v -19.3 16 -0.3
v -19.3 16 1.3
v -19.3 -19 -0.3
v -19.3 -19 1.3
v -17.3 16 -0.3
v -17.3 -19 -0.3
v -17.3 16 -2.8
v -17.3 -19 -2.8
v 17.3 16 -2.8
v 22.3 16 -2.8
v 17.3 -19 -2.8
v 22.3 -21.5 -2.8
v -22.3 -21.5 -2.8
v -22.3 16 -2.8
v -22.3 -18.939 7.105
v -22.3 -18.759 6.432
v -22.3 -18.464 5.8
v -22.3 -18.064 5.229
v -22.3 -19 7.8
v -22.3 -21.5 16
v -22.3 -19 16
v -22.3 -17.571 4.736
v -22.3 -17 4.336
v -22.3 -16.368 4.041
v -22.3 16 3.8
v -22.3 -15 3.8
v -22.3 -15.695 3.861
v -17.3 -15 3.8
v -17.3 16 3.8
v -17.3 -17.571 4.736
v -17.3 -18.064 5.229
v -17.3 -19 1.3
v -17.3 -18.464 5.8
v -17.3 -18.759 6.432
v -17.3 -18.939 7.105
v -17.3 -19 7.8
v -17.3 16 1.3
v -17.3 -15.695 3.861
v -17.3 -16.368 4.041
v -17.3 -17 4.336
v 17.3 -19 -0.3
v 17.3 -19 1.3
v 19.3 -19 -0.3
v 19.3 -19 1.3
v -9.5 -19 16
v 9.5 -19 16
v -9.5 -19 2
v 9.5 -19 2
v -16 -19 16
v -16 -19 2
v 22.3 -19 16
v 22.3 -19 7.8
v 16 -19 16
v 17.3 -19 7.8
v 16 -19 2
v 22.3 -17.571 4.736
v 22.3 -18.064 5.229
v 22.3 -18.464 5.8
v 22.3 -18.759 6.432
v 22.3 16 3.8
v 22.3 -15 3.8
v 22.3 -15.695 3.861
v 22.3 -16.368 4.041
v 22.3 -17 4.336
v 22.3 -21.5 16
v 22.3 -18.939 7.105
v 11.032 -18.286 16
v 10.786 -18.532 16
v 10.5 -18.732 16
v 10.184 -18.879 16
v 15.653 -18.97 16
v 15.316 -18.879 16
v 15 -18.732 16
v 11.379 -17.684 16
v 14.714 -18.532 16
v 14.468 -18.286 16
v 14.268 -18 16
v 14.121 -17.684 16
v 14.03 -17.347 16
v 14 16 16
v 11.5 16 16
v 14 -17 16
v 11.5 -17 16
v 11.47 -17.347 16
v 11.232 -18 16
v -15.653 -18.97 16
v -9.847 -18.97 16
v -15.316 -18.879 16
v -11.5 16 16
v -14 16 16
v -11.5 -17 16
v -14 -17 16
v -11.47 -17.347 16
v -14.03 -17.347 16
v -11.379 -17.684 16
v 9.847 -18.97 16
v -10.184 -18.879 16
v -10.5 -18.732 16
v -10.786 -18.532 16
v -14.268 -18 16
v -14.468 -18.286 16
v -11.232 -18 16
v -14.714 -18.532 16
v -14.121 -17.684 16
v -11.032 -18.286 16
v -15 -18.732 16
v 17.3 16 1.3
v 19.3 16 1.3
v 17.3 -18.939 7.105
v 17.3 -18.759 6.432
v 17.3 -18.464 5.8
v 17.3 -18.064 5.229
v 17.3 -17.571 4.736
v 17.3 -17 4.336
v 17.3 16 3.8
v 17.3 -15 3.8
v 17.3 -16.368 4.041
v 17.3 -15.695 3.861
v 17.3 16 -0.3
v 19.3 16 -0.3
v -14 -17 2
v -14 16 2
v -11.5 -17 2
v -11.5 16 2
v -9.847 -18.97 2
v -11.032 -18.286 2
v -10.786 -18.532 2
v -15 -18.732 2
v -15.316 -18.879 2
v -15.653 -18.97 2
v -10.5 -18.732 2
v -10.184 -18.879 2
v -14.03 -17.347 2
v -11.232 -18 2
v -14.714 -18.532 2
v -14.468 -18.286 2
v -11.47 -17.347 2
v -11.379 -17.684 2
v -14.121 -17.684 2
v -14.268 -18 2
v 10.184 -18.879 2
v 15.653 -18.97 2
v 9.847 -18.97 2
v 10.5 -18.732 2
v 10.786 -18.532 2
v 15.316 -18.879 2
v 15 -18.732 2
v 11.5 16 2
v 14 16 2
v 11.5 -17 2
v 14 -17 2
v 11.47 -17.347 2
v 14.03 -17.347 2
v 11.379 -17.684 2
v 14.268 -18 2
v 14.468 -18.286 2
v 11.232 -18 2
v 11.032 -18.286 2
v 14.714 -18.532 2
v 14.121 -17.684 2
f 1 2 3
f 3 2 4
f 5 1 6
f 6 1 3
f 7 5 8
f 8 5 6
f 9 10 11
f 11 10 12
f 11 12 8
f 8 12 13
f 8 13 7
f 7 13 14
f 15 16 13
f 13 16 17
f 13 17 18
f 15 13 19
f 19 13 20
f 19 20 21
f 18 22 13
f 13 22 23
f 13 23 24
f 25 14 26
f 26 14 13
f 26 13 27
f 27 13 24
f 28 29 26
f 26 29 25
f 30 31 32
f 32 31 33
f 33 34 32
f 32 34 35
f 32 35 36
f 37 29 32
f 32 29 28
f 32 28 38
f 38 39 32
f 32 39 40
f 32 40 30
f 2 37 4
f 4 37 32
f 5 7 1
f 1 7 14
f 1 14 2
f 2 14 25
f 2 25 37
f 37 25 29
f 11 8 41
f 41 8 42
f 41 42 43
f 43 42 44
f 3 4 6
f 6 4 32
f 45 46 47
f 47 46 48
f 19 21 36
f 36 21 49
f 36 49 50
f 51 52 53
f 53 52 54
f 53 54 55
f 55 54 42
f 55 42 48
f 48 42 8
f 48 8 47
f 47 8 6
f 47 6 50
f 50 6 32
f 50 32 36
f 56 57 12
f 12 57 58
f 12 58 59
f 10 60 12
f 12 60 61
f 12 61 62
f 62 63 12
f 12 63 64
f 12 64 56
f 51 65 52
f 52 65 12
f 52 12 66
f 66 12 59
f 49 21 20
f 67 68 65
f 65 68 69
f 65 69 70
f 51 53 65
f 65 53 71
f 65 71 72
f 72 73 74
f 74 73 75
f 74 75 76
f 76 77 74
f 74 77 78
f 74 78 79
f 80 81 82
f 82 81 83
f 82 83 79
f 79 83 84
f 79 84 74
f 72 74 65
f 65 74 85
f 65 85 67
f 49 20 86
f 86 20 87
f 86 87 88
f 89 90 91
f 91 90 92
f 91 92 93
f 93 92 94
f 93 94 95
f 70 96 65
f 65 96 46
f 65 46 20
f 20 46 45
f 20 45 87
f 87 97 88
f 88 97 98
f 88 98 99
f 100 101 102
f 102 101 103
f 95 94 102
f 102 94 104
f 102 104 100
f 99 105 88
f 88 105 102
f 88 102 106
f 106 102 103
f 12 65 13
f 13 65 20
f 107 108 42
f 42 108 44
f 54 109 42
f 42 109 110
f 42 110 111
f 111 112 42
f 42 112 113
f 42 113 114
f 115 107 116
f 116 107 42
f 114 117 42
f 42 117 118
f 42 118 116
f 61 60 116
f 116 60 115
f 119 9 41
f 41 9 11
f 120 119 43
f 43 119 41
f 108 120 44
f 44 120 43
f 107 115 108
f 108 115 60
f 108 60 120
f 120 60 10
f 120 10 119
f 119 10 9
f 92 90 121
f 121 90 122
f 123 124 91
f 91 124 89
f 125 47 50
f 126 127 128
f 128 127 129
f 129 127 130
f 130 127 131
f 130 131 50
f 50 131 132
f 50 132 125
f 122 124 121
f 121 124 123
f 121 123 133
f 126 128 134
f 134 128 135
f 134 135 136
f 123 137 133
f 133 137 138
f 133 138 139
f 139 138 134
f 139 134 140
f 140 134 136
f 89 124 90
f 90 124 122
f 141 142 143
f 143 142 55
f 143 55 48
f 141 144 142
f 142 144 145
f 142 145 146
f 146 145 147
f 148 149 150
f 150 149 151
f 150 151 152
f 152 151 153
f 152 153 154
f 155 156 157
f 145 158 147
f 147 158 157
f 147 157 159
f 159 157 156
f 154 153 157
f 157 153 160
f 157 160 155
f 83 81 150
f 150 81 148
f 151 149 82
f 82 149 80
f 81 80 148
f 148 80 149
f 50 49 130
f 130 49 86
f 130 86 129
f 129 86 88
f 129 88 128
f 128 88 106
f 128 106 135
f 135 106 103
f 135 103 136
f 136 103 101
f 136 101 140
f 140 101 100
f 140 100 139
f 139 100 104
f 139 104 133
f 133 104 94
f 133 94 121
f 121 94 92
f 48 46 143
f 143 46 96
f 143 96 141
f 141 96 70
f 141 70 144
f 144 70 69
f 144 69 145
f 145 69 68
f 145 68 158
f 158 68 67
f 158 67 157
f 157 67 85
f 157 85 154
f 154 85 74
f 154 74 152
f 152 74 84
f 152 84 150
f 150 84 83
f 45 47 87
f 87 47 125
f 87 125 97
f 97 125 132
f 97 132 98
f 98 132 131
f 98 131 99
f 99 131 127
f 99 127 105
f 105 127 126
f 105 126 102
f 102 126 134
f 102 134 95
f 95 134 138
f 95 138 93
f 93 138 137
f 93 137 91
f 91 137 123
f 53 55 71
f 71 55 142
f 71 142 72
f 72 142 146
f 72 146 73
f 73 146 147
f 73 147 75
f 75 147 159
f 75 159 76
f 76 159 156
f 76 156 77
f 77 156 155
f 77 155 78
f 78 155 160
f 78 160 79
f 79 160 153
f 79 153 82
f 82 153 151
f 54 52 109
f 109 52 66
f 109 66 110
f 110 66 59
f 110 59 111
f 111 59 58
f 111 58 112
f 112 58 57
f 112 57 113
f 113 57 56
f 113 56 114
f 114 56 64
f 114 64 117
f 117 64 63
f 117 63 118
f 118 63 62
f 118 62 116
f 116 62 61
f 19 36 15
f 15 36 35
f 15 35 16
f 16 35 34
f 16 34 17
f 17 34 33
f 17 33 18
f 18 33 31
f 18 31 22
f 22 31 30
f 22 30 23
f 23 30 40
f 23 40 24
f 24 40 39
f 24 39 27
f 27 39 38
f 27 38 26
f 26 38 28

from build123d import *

# Parameters (mm, degrees)
BOSS_EXTRUDE1_DEPTH   = 35
BOSS_EXTRUDE1_2_DEPTH = 35
SKETCH1_W             = 2.5
SKETCH1_H             = 14
BOSS_EXTRUDE1_3_DEPTH = 35
BOSS_EXTRUDE1_4_DEPTH = 35
SKETCH2_W             = 44.6
SKETCH2_H             = 18.8
BOSS_EXTRUDE2_DEPTH   = 2.5
FILLET1_R             = 2
FILLET2_R             = 4


with BuildPart() as part:
    # Sketch1 → Boss-Extrude1 (new body)
    with BuildSketch(Plane(origin=(0, -19, 0), x_dir=(1, 0, 0), z_dir=(0, 1, 0))):
        Polygon((-19.3, 0.3), (-17.3, 0.3), (-17.3, 2.8), (-22.3, 2.8), (-22.3, -3.8), (-17.3, -3.8), (-17.3, -1.3), (-19.3, -1.3), align=None)
    extrude(amount=BOSS_EXTRUDE1_DEPTH)



with BuildPart() as body_2:
    # Sketch1 → Boss-Extrude1 2 (new body)
    with BuildSketch(Plane(origin=(0, -19, 0), x_dir=(1, 0, 0), z_dir=(0, 1, 0))):
        Polygon((19.3, -1.3), (19.3, 0.3), (17.3, 0.3), (17.3, 2.8), (22.3, 2.8), (22.3, -3.8), (17.3, -3.8), (17.3, -1.3), align=None)
    extrude(amount=BOSS_EXTRUDE1_2_DEPTH)


with BuildPart() as body_3:
    # Sketch1 → Boss-Extrude1 3 (new body)
    with BuildSketch(Plane(origin=(0, -19, 0), x_dir=(1, 0, 0), z_dir=(0, 1, 0))):
        with Locations((12.75, -9)):
            Rectangle(SKETCH1_W, SKETCH1_H)
    extrude(amount=BOSS_EXTRUDE1_3_DEPTH)


with BuildPart() as body_4:
    # Sketch1 → Boss-Extrude1 4 (new body)
    with BuildSketch(Plane(origin=(0, -19, 0), x_dir=(1, 0, 0), z_dir=(0, 1, 0))):
        with Locations((-12.75, -9)):
            Rectangle(SKETCH1_W, SKETCH1_H)
    extrude(amount=BOSS_EXTRUDE1_4_DEPTH)


with BuildPart() as part_1:
    add(part.part)

    add(body_2.part)  # Boss-Extrude2 merges body 2

    add(body_3.part)  # Boss-Extrude2 merges body 3

    add(body_4.part)  # Boss-Extrude2 merges body 4
    # Sketch2 → Boss-Extrude2 (add)
    with BuildSketch(Plane(origin=(0, -19, 0), x_dir=(1, 0, 0), z_dir=(0, 1, 0))):
        with Locations((0, -6.6)):
            Rectangle(SKETCH2_W, SKETCH2_H)
    extrude(amount=-BOSS_EXTRUDE2_DEPTH)

    # Fillet1
    fillet1_edges = [part_1.edges().sort_by_distance(p)[0] for p in [
        (11.5, -19, 9),
        (14, -19, 9),
        (-14, -19, 9),
        (-11.5, -19, 9),
    ]]
    fillet(fillet1_edges, radius=FILLET1_R)

    # Fillet2
    fillet2_edges = [part_1.edges().sort_by_distance(p)[0] for p in [
        (19.8, -19, 3.8),
        (-19.8, -19, 3.8),
    ]]
    fillet(fillet2_edges, radius=FILLET2_R)


solid = part_1.part
